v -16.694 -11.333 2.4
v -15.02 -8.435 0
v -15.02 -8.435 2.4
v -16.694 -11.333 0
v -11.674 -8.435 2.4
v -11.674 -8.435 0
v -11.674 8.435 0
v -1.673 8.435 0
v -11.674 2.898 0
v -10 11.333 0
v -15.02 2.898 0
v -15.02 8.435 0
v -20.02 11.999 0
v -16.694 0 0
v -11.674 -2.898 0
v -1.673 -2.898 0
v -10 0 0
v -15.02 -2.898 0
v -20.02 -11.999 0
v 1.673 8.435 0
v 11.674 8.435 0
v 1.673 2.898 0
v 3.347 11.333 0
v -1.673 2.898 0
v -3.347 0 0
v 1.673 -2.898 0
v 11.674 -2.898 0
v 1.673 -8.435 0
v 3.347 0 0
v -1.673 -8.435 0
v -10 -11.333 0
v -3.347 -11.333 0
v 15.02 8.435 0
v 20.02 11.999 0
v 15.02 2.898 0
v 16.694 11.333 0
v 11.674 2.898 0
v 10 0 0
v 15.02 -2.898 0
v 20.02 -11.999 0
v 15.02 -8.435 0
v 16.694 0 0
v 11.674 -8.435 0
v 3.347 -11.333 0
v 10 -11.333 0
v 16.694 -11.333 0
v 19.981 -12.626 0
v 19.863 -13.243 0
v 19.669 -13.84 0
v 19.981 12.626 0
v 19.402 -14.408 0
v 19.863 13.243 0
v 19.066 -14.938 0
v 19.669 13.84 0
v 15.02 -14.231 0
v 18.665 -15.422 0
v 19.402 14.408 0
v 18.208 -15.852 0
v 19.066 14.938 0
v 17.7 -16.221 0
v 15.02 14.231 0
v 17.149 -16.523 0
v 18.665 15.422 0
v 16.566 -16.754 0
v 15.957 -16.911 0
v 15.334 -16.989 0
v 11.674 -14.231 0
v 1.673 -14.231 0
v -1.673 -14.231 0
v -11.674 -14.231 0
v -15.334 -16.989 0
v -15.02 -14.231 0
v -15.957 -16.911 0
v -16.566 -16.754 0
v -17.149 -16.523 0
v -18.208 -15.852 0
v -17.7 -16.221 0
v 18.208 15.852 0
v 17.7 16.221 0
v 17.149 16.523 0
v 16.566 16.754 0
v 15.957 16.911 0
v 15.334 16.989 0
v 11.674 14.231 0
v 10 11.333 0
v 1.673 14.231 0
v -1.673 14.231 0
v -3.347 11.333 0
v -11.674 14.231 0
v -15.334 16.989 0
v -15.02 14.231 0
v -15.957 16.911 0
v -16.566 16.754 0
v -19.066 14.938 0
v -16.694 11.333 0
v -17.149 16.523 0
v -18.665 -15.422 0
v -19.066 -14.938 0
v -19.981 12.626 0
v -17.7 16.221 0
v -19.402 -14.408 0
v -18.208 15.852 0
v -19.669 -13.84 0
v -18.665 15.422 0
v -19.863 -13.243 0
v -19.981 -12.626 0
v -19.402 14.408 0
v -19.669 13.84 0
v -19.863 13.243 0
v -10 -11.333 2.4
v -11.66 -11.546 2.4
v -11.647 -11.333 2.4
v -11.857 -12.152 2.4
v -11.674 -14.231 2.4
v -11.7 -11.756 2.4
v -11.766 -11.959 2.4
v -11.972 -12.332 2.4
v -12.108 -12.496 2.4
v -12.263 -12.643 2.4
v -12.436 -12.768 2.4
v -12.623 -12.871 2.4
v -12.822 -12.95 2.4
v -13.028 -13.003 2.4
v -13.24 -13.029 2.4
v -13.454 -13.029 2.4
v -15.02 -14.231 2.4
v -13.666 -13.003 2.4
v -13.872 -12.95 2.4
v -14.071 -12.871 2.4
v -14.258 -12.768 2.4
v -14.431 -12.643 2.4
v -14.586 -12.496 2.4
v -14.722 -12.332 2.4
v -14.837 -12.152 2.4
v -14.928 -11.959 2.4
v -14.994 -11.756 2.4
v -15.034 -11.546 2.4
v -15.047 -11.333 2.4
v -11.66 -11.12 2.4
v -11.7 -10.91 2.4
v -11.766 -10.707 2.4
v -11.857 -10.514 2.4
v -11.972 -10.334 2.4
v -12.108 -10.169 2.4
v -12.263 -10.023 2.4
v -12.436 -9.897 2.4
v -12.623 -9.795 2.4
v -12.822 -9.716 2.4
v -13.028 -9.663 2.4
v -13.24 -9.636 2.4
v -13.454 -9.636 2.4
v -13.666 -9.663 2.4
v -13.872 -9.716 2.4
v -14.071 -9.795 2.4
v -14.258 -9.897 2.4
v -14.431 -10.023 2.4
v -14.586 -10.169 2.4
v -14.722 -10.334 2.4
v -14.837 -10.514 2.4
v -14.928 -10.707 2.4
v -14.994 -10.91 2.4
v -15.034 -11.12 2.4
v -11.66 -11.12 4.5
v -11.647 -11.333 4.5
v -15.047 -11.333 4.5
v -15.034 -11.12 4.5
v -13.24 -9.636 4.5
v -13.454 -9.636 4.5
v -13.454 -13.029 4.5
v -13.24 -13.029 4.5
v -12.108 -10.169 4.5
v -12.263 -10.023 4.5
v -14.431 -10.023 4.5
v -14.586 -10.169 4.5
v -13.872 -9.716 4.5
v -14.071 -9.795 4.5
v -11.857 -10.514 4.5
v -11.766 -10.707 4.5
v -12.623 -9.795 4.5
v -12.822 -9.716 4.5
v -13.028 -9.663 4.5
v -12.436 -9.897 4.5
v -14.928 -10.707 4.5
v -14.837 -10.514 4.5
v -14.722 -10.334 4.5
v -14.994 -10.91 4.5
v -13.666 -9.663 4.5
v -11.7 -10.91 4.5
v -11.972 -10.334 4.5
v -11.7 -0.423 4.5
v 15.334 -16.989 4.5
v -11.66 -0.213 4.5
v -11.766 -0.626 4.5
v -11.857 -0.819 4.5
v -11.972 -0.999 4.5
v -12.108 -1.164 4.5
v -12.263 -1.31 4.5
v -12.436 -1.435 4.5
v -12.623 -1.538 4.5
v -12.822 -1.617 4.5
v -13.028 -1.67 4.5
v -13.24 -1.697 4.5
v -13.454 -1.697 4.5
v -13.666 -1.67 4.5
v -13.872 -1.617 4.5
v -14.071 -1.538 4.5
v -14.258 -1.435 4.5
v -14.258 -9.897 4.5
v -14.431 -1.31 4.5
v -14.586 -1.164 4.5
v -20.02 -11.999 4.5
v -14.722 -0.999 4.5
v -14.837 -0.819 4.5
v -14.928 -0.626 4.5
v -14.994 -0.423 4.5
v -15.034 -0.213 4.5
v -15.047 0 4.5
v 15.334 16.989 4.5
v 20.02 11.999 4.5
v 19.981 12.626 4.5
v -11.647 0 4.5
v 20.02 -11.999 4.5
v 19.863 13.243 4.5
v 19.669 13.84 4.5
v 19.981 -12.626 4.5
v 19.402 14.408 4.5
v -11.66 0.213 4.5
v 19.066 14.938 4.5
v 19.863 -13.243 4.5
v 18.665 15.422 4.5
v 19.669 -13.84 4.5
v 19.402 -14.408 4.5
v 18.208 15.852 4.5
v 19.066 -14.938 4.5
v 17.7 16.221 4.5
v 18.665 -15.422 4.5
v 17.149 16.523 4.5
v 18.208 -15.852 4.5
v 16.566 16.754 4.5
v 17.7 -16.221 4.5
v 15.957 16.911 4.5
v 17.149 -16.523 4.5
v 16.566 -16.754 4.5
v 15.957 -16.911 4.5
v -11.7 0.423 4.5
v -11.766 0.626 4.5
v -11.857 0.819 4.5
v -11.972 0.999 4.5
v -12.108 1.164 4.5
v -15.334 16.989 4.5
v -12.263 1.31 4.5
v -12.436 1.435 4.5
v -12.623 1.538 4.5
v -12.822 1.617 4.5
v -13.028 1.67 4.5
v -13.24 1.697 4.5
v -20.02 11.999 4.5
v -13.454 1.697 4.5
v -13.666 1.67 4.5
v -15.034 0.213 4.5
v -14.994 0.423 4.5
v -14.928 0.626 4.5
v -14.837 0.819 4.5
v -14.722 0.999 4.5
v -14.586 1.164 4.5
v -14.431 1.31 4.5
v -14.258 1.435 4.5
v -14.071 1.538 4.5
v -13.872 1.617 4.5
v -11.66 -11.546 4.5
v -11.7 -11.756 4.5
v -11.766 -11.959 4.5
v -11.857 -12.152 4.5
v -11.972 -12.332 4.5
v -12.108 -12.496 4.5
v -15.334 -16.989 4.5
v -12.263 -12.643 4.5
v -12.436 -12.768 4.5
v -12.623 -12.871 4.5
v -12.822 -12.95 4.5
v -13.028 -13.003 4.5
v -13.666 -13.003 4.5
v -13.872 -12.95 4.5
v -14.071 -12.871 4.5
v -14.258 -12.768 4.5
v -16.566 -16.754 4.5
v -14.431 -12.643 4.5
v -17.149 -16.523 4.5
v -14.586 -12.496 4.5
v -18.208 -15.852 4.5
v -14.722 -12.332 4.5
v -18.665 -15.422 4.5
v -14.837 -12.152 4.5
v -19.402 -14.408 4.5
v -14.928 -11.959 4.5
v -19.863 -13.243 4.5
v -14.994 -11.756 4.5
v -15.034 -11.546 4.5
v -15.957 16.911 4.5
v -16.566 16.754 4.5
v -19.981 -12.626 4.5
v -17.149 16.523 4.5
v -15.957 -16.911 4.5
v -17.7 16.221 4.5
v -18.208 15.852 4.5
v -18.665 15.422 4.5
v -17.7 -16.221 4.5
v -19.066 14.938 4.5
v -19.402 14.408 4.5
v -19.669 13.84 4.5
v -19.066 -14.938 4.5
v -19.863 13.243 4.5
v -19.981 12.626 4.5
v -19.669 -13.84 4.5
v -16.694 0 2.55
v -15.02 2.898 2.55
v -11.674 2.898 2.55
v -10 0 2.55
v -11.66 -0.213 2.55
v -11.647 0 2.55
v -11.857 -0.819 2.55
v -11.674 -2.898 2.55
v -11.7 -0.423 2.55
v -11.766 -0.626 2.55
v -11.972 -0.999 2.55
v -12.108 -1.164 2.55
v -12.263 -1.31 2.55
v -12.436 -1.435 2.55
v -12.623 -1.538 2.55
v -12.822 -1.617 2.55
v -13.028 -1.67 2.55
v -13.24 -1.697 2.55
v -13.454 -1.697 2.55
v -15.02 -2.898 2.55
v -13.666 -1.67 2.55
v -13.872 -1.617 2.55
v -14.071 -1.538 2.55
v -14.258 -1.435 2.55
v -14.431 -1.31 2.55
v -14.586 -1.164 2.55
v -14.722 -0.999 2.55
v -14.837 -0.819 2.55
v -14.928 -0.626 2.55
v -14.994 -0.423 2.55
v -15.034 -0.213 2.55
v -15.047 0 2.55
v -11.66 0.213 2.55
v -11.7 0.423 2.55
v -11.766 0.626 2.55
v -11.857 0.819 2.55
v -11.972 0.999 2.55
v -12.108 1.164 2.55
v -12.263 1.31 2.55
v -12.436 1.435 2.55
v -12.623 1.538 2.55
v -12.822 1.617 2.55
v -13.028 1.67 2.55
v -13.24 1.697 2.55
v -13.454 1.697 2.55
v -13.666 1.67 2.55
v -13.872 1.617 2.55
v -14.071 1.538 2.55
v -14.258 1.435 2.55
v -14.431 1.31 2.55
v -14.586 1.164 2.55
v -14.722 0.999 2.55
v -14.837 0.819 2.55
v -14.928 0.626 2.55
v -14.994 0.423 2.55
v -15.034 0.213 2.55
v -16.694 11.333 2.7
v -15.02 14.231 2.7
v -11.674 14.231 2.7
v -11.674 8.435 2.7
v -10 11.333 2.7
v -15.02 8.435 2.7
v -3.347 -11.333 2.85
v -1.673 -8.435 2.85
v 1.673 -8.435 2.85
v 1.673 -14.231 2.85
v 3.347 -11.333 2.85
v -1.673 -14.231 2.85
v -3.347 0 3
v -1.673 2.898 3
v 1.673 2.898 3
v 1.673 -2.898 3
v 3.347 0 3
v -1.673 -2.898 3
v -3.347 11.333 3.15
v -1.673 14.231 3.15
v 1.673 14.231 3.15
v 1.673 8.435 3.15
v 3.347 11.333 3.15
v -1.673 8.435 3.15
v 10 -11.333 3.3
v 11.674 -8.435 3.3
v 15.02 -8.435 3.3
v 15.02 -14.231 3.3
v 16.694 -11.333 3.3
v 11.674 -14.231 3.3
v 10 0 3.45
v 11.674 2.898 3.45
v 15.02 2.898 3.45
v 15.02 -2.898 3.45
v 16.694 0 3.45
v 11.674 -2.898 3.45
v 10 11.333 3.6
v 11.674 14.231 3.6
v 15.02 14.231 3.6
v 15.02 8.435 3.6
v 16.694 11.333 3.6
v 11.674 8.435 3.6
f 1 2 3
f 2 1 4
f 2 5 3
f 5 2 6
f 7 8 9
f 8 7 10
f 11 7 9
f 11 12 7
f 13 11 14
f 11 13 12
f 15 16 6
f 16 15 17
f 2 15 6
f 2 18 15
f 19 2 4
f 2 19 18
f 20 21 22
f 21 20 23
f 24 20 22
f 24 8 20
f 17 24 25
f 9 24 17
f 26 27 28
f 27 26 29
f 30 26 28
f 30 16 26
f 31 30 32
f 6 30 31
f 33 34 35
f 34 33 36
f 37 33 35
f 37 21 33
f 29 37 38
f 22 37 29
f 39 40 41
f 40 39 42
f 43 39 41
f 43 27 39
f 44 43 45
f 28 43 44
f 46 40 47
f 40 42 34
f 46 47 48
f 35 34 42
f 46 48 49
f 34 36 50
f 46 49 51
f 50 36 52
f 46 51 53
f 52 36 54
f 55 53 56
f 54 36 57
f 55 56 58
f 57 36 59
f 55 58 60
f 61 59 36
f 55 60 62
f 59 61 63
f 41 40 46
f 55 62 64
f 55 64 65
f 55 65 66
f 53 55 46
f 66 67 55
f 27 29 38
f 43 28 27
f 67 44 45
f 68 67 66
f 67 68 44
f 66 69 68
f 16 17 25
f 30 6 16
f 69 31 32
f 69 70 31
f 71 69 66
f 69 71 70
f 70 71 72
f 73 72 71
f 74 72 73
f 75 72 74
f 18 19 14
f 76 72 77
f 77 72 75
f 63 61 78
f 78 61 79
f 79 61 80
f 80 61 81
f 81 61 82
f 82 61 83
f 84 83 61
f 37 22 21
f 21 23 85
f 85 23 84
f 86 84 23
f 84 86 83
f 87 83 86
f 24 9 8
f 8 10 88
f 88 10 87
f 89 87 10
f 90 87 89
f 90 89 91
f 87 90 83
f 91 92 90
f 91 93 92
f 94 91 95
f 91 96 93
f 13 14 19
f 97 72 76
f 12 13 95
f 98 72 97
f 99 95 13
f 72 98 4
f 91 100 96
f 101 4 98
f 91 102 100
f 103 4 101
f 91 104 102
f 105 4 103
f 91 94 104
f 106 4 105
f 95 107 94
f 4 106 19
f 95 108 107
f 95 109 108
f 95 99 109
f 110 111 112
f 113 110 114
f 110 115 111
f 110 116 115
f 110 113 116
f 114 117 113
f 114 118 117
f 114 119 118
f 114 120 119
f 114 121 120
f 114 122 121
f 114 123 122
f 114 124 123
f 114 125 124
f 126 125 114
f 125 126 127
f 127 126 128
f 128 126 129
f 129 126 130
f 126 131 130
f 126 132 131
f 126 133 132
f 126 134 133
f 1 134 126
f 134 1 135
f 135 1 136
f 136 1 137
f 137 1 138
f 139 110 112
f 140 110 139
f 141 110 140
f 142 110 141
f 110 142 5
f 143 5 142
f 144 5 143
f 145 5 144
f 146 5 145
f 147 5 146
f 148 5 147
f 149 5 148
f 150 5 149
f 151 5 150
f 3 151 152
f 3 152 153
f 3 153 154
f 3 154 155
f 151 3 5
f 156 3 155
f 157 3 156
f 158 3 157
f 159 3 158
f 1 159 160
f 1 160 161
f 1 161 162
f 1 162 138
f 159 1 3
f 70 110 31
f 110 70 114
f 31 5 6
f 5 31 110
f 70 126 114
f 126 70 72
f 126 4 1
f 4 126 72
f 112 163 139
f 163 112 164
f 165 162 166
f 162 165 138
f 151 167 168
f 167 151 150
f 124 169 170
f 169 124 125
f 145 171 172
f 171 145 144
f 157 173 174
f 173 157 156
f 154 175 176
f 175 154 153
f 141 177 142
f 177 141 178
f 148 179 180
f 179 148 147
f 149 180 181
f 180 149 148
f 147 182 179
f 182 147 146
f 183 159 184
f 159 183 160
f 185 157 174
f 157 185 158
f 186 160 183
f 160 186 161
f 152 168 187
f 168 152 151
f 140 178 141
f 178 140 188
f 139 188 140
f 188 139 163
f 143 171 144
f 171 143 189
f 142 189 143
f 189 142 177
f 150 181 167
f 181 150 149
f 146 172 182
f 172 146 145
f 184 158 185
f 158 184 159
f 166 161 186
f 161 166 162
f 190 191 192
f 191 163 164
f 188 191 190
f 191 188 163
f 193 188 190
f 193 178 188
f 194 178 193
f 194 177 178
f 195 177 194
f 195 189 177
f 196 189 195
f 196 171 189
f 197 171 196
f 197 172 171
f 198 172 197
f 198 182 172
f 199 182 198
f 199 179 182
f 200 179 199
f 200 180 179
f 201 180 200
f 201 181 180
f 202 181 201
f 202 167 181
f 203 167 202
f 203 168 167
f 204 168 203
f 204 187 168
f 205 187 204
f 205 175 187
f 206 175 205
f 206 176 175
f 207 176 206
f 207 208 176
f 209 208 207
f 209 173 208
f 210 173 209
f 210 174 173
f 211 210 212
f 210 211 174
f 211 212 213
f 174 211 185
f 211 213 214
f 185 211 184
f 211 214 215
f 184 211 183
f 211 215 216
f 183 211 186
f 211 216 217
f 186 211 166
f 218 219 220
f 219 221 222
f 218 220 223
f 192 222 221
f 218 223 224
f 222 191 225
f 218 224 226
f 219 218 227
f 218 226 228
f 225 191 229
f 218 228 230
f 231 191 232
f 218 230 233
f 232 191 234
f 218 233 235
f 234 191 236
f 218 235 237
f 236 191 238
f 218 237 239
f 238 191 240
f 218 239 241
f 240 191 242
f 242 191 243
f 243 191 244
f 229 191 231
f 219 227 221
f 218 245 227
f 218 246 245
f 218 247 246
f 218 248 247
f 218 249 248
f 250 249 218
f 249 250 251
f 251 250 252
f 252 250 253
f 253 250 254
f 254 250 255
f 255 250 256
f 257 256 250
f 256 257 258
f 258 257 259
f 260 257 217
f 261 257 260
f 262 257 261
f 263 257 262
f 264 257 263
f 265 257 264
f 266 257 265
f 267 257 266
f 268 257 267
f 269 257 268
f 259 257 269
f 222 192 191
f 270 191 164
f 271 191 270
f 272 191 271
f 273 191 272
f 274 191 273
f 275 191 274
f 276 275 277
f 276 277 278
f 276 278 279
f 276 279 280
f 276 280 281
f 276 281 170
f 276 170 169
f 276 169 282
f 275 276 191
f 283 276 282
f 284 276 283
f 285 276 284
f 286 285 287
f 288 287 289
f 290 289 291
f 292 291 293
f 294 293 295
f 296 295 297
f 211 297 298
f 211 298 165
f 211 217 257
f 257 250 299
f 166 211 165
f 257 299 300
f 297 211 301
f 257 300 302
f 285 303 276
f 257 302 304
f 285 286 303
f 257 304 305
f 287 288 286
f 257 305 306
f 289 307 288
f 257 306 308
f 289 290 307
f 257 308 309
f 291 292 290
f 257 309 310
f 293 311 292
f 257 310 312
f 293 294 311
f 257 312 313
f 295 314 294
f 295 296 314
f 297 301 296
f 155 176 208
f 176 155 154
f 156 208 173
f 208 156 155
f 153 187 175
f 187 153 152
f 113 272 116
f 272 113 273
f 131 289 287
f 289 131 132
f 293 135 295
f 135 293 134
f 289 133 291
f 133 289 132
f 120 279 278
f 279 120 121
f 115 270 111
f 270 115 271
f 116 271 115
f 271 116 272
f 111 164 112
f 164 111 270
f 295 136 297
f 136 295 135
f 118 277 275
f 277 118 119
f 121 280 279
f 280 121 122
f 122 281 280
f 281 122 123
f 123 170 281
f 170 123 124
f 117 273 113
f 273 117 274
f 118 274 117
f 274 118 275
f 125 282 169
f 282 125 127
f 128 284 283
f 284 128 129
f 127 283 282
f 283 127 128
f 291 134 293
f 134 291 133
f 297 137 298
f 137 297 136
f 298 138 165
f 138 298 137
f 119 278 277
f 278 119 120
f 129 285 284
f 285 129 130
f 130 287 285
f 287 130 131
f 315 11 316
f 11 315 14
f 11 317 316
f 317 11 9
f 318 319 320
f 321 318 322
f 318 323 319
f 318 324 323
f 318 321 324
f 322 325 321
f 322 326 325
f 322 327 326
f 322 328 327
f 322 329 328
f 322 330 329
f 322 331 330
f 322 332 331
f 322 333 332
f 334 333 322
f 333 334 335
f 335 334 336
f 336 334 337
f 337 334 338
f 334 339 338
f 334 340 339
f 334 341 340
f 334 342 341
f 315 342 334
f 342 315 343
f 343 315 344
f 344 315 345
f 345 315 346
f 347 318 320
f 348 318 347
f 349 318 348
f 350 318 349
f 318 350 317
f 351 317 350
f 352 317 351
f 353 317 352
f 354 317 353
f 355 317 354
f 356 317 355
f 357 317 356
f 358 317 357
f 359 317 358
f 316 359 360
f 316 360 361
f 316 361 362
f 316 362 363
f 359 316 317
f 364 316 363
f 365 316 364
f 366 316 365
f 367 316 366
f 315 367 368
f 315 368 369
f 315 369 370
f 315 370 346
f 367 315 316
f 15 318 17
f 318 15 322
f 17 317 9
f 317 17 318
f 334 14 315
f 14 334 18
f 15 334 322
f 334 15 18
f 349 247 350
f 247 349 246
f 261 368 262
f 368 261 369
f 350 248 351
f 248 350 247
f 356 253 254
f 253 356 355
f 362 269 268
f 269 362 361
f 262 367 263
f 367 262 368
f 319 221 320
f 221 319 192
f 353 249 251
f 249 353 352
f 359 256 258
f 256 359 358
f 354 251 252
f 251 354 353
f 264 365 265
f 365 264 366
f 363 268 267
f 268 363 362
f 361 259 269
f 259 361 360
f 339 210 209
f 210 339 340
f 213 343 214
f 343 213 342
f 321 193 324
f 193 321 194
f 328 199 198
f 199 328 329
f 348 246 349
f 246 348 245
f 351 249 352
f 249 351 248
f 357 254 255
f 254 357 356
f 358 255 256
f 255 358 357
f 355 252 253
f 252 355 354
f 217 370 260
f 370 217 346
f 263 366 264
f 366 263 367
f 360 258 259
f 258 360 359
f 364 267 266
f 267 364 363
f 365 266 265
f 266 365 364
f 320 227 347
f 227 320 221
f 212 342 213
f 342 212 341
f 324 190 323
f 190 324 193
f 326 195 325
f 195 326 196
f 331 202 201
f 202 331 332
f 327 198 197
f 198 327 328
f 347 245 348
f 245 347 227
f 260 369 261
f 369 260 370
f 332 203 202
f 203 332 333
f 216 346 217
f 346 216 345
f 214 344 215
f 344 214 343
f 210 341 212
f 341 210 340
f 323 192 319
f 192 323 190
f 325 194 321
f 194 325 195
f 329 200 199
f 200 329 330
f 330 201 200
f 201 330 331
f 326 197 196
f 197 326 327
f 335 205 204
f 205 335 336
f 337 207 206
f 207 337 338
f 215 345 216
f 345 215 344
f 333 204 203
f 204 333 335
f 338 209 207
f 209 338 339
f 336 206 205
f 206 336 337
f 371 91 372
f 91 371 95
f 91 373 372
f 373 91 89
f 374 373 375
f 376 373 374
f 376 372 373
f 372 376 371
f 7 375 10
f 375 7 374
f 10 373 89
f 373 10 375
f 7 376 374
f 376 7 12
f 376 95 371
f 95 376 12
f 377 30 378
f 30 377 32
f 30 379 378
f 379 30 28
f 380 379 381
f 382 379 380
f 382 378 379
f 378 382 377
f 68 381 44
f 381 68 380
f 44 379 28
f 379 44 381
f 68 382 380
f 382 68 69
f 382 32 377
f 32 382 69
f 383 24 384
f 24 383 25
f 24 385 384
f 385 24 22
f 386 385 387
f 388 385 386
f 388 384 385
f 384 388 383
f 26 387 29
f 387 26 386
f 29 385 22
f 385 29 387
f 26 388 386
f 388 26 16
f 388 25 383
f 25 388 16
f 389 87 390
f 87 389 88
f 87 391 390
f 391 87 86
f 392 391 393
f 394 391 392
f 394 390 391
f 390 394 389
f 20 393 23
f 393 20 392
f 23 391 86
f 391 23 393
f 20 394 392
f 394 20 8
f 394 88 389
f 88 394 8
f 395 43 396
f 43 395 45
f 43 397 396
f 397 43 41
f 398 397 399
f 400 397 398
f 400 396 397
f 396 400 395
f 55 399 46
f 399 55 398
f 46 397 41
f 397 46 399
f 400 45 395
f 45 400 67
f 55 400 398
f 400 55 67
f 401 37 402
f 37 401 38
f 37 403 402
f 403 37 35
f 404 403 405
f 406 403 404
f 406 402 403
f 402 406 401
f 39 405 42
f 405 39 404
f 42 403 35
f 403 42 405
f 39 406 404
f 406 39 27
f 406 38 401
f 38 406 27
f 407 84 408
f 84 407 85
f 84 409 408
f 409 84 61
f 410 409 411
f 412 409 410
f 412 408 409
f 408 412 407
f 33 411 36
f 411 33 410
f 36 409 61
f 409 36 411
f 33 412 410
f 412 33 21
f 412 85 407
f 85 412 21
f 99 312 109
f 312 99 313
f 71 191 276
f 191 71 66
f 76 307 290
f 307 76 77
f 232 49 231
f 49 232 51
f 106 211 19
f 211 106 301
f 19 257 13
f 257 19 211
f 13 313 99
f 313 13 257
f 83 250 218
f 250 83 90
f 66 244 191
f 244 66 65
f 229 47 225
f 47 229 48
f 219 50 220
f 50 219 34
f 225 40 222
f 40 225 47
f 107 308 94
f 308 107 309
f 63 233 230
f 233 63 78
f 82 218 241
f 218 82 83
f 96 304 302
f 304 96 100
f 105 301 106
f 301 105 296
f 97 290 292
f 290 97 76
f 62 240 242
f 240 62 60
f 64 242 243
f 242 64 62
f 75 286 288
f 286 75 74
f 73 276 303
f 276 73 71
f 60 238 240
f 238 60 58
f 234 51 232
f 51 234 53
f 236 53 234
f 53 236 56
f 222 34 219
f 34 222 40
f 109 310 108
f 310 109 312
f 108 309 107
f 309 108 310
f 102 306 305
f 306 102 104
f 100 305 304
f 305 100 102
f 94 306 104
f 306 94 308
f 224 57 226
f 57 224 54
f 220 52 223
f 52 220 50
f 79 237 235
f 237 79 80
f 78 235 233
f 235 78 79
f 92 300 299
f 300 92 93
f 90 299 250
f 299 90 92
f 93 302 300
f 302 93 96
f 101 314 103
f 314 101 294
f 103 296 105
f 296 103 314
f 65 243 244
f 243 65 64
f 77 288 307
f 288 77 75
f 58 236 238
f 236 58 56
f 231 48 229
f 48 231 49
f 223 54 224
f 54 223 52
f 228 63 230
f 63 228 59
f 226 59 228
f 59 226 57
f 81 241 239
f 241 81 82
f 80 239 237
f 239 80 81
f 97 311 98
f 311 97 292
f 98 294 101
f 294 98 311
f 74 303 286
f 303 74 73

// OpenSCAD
$fn = 50;


difference() {
	union() {
		translate(v = [0, 0, 0]) {
			rotate(a = [0, 0, 0]) {
				hull() {
					translate(v = [-15.0205000000, 11.9991334489, 0]) {
						rotate(a = [0, 0, 0]) {
							translate(v = [0, 0, 0]) {
								rotate(a = [0, 0, 0]) {
									cylinder(h = 4.5000000000, r = 5);
								}
							}
						}
					}
					translate(v = [15.0205000000, 11.9991334489, 0]) {
						rotate(a = [0, 0, 0]) {
							translate(v = [0, 0, 0]) {
								rotate(a = [0, 0, 0]) {
									cylinder(h = 4.5000000000, r = 5);
								}
							}
						}
					}
					translate(v = [-15.0205000000, -11.9991334489, 0]) {
						rotate(a = [0, 0, 0]) {
							translate(v = [0, 0, 0]) {
								rotate(a = [0, 0, 0]) {
									cylinder(h = 4.5000000000, r = 5);
								}
							}
						}
					}
					translate(v = [15.0205000000, -11.9991334489, 0]) {
						rotate(a = [0, 0, 0]) {
							translate(v = [0, 0, 0]) {
								rotate(a = [0, 0, 0]) {
									cylinder(h = 4.5000000000, r = 5);
								}
							}
						}
					}
				}
			}
		}
	}
	union() {
		translate(v = [-13.3470000000, -11.3327556326, 0]) {
			rotate(a = [0, 0, 0]) {
				#translate(v = [0, 0, 0]) {
					rotate(a = [0, 0, 0]) {
						linear_extrude(height = 2.4000000000) {
							polygon(points = [[3.3466000000, 0.0000000000], [1.6733000000, 2.8982406163], [-1.6733000000, 2.8982406163], [-3.3466000000, 0.0000000000], [-1.6733000000, -2.8982406163], [1.6733000000, -2.8982406163]]);
						}
					}
				}
			}
		}
		translate(v = [-13.3470000000, -11.3327556326, 0]) {
			rotate(a = [0, 0, 0]) {
				cylinder(h = 4.5000000000, r = 1.7000000000);
			}
		}
		translate(v = [-13.3470000000, -0.0000000000, 0]) {
			rotate(a = [0, 0, 0]) {
				#translate(v = [0, 0, 0]) {
					rotate(a = [0, 0, 0]) {
						linear_extrude(height = 2.5500000000) {
							polygon(points = [[3.3466000000, 0.0000000000], [1.6733000000, 2.8982406163], [-1.6733000000, 2.8982406163], [-3.3466000000, 0.0000000000], [-1.6733000000, -2.8982406163], [1.6733000000, -2.8982406163]]);
						}
					}
				}
			}
		}
		translate(v = [-13.3470000000, -0.0000000000, 0]) {
			rotate(a = [0, 0, 0]) {
				cylinder(h = 4.5000000000, r = 1.7000000000);
			}
		}
		translate(v = [-13.3470000000, 11.3327556326, 0]) {
			rotate(a = [0, 0, 0]) {
				#translate(v = [0, 0, 0]) {
					rotate(a = [0, 0, 0]) {
						linear_extrude(height = 2.7000000000) {
							polygon(points = [[3.3466000000, 0.0000000000], [1.6733000000, 2.8982406163], [-1.6733000000, 2.8982406163], [-3.3466000000, 0.0000000000], [-1.6733000000, -2.8982406163], [1.6733000000, -2.8982406163]]);
						}
					}
				}
			}
		}
		translate(v = [0.0000000000, -11.3327556326, 0]) {
			rotate(a = [0, 0, 0]) {
				#translate(v = [0, 0, 0]) {
					rotate(a = [0, 0, 0]) {
						linear_extrude(height = 2.8500000000) {
							polygon(points = [[3.3466000000, 0.0000000000], [1.6733000000, 2.8982406163], [-1.6733000000, 2.8982406163], [-3.3466000000, 0.0000000000], [-1.6733000000, -2.8982406163], [1.6733000000, -2.8982406163]]);
						}
					}
				}
			}
		}
		translate(v = [0.0000000000, -0.0000000000, 0]) {
			rotate(a = [0, 0, 0]) {
				#translate(v = [0, 0, 0]) {
					rotate(a = [0, 0, 0]) {
						linear_extrude(height = 3.0000000000) {
							polygon(points = [[3.3466000000, 0.0000000000], [1.6733000000, 2.8982406163], [-1.6733000000, 2.8982406163], [-3.3466000000, 0.0000000000], [-1.6733000000, -2.8982406163], [1.6733000000, -2.8982406163]]);
						}
					}
				}
			}
		}
		translate(v = [0.0000000000, 11.3327556326, 0]) {
			rotate(a = [0, 0, 0]) {
				#translate(v = [0, 0, 0]) {
					rotate(a = [0, 0, 0]) {
						linear_extrude(height = 3.1500000000) {
							polygon(points = [[3.3466000000, 0.0000000000], [1.6733000000, 2.8982406163], [-1.6733000000, 2.8982406163], [-3.3466000000, 0.0000000000], [-1.6733000000, -2.8982406163], [1.6733000000, -2.8982406163]]);
						}
					}
				}
			}
		}
		translate(v = [13.3470000000, -11.3327556326, 0]) {
			rotate(a = [0, 0, 0]) {
				#translate(v = [0, 0, 0]) {
					rotate(a = [0, 0, 0]) {
						linear_extrude(height = 3.3000000000) {
							polygon(points = [[3.3466000000, 0.0000000000], [1.6733000000, 2.8982406163], [-1.6733000000, 2.8982406163], [-3.3466000000, 0.0000000000], [-1.6733000000, -2.8982406163], [1.6733000000, -2.8982406163]]);
						}
					}
				}
			}
		}
		translate(v = [13.3470000000, -0.0000000000, 0]) {
			rotate(a = [0, 0, 0]) {
				#translate(v = [0, 0, 0]) {
					rotate(a = [0, 0, 0]) {
						linear_extrude(height = 3.4500000000) {
							polygon(points = [[3.3466000000, 0.0000000000], [1.6733000000, 2.8982406163], [-1.6733000000, 2.8982406163], [-3.3466000000, 0.0000000000], [-1.6733000000, -2.8982406163], [1.6733000000, -2.8982406163]]);
						}
					}
				}
			}
		}
		translate(v = [13.3470000000, 11.3327556326, 0]) {
			rotate(a = [0, 0, 0]) {
				#translate(v = [0, 0, 0]) {
					rotate(a = [0, 0, 0]) {
						linear_extrude(height = 3.6000000000) {
							polygon(points = [[3.3466000000, 0.0000000000], [1.6733000000, 2.8982406163], [-1.6733000000, 2.8982406163], [-3.3466000000, 0.0000000000], [-1.6733000000, -2.8982406163], [1.6733000000, -2.8982406163]]);
						}
					}
				}
			}
		}
	}
}
